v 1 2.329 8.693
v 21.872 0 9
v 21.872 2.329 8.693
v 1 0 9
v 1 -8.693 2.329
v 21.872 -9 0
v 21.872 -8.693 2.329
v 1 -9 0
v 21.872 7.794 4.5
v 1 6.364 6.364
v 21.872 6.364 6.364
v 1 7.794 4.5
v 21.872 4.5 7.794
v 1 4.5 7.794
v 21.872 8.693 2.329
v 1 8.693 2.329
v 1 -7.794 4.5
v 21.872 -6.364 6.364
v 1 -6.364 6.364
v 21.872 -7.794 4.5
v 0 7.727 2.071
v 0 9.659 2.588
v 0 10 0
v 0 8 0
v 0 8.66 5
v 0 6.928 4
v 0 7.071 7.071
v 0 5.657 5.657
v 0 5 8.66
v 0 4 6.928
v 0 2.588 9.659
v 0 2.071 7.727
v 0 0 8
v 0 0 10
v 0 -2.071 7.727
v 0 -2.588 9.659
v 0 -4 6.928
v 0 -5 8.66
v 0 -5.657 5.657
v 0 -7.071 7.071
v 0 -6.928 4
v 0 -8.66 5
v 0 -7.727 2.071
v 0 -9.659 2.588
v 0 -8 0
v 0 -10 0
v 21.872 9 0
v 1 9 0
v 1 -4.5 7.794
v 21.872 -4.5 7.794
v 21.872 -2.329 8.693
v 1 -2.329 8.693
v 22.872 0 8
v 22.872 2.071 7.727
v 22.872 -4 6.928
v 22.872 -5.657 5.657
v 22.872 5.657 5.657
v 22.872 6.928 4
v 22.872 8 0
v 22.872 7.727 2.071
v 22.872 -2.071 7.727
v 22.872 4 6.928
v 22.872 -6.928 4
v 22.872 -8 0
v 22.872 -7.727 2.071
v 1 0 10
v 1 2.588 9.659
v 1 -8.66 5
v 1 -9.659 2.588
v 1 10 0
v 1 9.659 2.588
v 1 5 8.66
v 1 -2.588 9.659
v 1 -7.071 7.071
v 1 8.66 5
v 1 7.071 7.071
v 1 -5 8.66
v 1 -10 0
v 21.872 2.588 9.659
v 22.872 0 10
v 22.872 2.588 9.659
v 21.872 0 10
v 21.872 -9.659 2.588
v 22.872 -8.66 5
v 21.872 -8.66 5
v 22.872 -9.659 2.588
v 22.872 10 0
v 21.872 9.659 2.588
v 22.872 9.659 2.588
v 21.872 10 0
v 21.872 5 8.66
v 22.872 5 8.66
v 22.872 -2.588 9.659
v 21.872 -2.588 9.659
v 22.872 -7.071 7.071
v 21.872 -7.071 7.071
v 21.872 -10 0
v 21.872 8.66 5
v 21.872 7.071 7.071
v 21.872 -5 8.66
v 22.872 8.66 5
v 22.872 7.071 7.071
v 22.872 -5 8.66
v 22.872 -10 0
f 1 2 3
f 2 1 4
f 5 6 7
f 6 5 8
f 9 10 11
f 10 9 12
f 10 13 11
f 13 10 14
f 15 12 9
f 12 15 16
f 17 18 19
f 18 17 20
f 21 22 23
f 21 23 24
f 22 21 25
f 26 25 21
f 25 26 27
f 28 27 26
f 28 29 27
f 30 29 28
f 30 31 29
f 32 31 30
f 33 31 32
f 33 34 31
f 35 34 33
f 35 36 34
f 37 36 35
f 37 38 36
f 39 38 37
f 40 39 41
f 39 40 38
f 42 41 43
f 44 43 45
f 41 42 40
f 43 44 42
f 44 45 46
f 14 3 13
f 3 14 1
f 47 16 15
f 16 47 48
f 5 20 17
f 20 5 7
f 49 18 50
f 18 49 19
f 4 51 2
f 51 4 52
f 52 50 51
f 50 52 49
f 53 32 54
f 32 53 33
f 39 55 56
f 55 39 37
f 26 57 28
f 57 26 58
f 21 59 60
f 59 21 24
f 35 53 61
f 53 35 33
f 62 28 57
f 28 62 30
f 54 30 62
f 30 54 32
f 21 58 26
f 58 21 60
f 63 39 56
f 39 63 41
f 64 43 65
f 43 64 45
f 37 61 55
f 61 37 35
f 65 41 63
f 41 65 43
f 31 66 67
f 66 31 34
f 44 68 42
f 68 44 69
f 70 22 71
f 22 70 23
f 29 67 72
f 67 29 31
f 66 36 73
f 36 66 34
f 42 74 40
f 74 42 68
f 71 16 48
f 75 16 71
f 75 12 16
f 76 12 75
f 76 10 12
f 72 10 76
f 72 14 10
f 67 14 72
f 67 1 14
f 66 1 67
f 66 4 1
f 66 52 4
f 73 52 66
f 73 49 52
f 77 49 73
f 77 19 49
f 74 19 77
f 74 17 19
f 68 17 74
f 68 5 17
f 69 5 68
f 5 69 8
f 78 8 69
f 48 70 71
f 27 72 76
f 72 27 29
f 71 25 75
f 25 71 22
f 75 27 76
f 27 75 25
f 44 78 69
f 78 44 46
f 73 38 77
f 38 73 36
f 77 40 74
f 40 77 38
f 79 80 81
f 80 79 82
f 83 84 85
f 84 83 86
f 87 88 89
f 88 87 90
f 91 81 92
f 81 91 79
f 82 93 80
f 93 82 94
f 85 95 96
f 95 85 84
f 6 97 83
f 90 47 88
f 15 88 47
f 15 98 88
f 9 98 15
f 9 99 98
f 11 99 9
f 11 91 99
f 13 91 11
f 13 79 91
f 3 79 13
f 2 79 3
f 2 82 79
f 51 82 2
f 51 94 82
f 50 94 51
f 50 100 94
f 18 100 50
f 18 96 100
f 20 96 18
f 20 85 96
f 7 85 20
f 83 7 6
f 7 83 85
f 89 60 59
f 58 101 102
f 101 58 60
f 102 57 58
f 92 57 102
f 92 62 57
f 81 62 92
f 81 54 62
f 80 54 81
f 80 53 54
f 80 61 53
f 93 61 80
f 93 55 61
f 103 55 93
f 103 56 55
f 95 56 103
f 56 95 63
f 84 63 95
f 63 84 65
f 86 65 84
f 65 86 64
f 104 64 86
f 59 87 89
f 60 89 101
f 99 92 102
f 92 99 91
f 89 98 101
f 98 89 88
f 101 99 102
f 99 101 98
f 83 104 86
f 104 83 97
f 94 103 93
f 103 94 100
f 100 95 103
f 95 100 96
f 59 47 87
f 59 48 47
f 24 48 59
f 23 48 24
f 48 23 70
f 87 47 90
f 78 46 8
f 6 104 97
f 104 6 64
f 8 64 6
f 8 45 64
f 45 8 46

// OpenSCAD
// file: ../build_environments.scad
// build_environments.scad: modules to build level sections
//

module pool(diameter=10.0, wall_height=2.0, step_width=3.0, connections=[])
{
    difference() {
        union() {
        difference() {
            cylinder(h=0.5,r1=diameter+step_width,r2=diameter+step_width,$fn=48);
            translate([0,0,-0.1])
                cylinder(h=0.7,r1=diameter,r2=diameter,$fn=48);
        }
        difference() {
            cylinder(h=wall_height,r1=diameter+step_width+1.0,r2=diameter+step_width+1.0,$fn=48);
            translate([0,0,-0.1])
                cylinder(h=wall_height+0.2,r1=diameter+step_width,r2=diameter+step_width,$fn=48);
        }
        }
    
        for (c = connections)
        {
            rotate([0,90,0]) {
                angle = atan2(c[1],c[0]);
                rotate([-angle,0,0]) {
                    cylinder(h=diameter+5.0,r1=c[2],r2=c[2],$fn=48);
                }
            }
        }
    }
}

module straight(length=10.0, width=2.0, dy1=0.0, dy2=0.0, dz=0.0)
{
    dims = [0, 0, 0, 0, 0, (dz/length)];
    matrix = [
        [ 1, dims[0], dims[1], 0 ],
        [ dims[2], 1, dims[4], 0 ],
        [ dims[5], dims[3], 1, 0 ],
        [ 0, 0, 0, 1 ]
    ];
    multmatrix(matrix)
    difference() {
        translate([dy1,0,0])
        union() {
            rotate([0,90,0]) {
                difference() {
                    cylinder(h=(length-dy1-dy2),r1=width+1.0,r2=width+1.0,$fn=24);
                    translate([0,0,-0.1])
                        cylinder(h=(length-dy1-dy2+0.2),r1=width,r2=width,$fn=24);
                }
                difference() {
                    cylinder(h=1.0,r1=width+2.0,r2=width+2.0,$fn=24);
                    translate([0,0,-0.1])
                        cylinder(h=1.2,r1=width,r2=width,$fn=24);
                }
                translate([0,0,(length-dy1-dy2)-1.0]) {
                    difference() {
                        cylinder(h=1.0,r1=width+2.0,r2=width+2.0,$fn=24);
                        translate([0,0,-0.1])
                            cylinder(h=1.2,r1=width,r2=width,$fn=24);
                    }
                }
            }
        }
        translate([0,0,-(2*width+4.0)/2])
            cube([3*length,3*length,2*width+4.0],center=true);
    }
}

module curve(p0=[0,0], center=[0,0], dir=1, angle=0.0, width=2.0)
{
    radius = sqrt((p0[0]-center[0])*(p0[0]-center[0]) + (p0[1]-center[1])*(p0[1]-center[1]));
    if (dir == 0) {
        difference() {
            rotate([0,0,-90])
            difference() {
                rotate_extrude(angle = angle, convexity = 10, $fn=32)
                    translate([radius, 0, 0])
                        circle(r = width+1.0,$fn=24);
                rotate([0,0,-1.0])
                    rotate_extrude(angle = angle+2.0, convexity = 10, $fn=32)
                        translate([radius, 0, 0])
                            circle(r = width,$fn=24);
            }
            translate([0,0,-(2*width+4.0)/2])
                cube([5*radius,5*radius,2*width+4.0],center=true);
        }
    }
    else {
        difference() {
            rotate([0,0,90])
            difference() {
                rotate_extrude(angle = -angle, convexity = 10, $fn=32)
                    translate([radius, 0, 0])
                        circle(r = width+1.0,$fn=24);
                rotate([0,0,1.0])
                    rotate_extrude(angle = -angle-2.0, convexity = 10, $fn=32)
                        translate([radius, 0, 0])
                            circle(r = width,$fn=24);
            }
            translate([0,0,-(2*width+4.0)/2])
                cube([5*radius,5*radius,2*width+4.0],center=true);
        }
    }

}

// test pool
//pool(diameter=12.0000, wall_height=3.0000, step_width=3.0000, connections=[[0.0000,-26.0000,2.0000], [23.6074,0.0000,2.0000]]);

// test straight, slope
//straight(length=26.0000, width=2.0000, dy1=11.8322, dy2=6.7082, dz=0.0000);
//straight(length=29.1549, width=12.0000, dy1=0.0000, dy2=0.0000, dz=-15.0000);

// test curve
//curve(p0=[23.6074, 0.0000], center=[23.6074, 5.0000], dir=0, angle=60.1011, width=2.0000);
//curve(p0=[33.6426, 12.4219], center=[37.9771, 9.9295], dir=1, angle=120.4627, width=2.0000);
// main file
use <../build_environments.scad>;
straight(length=22.8724, width=8.0000, dy1=0.0000, dy2=0.0000, dz=0.0000);
